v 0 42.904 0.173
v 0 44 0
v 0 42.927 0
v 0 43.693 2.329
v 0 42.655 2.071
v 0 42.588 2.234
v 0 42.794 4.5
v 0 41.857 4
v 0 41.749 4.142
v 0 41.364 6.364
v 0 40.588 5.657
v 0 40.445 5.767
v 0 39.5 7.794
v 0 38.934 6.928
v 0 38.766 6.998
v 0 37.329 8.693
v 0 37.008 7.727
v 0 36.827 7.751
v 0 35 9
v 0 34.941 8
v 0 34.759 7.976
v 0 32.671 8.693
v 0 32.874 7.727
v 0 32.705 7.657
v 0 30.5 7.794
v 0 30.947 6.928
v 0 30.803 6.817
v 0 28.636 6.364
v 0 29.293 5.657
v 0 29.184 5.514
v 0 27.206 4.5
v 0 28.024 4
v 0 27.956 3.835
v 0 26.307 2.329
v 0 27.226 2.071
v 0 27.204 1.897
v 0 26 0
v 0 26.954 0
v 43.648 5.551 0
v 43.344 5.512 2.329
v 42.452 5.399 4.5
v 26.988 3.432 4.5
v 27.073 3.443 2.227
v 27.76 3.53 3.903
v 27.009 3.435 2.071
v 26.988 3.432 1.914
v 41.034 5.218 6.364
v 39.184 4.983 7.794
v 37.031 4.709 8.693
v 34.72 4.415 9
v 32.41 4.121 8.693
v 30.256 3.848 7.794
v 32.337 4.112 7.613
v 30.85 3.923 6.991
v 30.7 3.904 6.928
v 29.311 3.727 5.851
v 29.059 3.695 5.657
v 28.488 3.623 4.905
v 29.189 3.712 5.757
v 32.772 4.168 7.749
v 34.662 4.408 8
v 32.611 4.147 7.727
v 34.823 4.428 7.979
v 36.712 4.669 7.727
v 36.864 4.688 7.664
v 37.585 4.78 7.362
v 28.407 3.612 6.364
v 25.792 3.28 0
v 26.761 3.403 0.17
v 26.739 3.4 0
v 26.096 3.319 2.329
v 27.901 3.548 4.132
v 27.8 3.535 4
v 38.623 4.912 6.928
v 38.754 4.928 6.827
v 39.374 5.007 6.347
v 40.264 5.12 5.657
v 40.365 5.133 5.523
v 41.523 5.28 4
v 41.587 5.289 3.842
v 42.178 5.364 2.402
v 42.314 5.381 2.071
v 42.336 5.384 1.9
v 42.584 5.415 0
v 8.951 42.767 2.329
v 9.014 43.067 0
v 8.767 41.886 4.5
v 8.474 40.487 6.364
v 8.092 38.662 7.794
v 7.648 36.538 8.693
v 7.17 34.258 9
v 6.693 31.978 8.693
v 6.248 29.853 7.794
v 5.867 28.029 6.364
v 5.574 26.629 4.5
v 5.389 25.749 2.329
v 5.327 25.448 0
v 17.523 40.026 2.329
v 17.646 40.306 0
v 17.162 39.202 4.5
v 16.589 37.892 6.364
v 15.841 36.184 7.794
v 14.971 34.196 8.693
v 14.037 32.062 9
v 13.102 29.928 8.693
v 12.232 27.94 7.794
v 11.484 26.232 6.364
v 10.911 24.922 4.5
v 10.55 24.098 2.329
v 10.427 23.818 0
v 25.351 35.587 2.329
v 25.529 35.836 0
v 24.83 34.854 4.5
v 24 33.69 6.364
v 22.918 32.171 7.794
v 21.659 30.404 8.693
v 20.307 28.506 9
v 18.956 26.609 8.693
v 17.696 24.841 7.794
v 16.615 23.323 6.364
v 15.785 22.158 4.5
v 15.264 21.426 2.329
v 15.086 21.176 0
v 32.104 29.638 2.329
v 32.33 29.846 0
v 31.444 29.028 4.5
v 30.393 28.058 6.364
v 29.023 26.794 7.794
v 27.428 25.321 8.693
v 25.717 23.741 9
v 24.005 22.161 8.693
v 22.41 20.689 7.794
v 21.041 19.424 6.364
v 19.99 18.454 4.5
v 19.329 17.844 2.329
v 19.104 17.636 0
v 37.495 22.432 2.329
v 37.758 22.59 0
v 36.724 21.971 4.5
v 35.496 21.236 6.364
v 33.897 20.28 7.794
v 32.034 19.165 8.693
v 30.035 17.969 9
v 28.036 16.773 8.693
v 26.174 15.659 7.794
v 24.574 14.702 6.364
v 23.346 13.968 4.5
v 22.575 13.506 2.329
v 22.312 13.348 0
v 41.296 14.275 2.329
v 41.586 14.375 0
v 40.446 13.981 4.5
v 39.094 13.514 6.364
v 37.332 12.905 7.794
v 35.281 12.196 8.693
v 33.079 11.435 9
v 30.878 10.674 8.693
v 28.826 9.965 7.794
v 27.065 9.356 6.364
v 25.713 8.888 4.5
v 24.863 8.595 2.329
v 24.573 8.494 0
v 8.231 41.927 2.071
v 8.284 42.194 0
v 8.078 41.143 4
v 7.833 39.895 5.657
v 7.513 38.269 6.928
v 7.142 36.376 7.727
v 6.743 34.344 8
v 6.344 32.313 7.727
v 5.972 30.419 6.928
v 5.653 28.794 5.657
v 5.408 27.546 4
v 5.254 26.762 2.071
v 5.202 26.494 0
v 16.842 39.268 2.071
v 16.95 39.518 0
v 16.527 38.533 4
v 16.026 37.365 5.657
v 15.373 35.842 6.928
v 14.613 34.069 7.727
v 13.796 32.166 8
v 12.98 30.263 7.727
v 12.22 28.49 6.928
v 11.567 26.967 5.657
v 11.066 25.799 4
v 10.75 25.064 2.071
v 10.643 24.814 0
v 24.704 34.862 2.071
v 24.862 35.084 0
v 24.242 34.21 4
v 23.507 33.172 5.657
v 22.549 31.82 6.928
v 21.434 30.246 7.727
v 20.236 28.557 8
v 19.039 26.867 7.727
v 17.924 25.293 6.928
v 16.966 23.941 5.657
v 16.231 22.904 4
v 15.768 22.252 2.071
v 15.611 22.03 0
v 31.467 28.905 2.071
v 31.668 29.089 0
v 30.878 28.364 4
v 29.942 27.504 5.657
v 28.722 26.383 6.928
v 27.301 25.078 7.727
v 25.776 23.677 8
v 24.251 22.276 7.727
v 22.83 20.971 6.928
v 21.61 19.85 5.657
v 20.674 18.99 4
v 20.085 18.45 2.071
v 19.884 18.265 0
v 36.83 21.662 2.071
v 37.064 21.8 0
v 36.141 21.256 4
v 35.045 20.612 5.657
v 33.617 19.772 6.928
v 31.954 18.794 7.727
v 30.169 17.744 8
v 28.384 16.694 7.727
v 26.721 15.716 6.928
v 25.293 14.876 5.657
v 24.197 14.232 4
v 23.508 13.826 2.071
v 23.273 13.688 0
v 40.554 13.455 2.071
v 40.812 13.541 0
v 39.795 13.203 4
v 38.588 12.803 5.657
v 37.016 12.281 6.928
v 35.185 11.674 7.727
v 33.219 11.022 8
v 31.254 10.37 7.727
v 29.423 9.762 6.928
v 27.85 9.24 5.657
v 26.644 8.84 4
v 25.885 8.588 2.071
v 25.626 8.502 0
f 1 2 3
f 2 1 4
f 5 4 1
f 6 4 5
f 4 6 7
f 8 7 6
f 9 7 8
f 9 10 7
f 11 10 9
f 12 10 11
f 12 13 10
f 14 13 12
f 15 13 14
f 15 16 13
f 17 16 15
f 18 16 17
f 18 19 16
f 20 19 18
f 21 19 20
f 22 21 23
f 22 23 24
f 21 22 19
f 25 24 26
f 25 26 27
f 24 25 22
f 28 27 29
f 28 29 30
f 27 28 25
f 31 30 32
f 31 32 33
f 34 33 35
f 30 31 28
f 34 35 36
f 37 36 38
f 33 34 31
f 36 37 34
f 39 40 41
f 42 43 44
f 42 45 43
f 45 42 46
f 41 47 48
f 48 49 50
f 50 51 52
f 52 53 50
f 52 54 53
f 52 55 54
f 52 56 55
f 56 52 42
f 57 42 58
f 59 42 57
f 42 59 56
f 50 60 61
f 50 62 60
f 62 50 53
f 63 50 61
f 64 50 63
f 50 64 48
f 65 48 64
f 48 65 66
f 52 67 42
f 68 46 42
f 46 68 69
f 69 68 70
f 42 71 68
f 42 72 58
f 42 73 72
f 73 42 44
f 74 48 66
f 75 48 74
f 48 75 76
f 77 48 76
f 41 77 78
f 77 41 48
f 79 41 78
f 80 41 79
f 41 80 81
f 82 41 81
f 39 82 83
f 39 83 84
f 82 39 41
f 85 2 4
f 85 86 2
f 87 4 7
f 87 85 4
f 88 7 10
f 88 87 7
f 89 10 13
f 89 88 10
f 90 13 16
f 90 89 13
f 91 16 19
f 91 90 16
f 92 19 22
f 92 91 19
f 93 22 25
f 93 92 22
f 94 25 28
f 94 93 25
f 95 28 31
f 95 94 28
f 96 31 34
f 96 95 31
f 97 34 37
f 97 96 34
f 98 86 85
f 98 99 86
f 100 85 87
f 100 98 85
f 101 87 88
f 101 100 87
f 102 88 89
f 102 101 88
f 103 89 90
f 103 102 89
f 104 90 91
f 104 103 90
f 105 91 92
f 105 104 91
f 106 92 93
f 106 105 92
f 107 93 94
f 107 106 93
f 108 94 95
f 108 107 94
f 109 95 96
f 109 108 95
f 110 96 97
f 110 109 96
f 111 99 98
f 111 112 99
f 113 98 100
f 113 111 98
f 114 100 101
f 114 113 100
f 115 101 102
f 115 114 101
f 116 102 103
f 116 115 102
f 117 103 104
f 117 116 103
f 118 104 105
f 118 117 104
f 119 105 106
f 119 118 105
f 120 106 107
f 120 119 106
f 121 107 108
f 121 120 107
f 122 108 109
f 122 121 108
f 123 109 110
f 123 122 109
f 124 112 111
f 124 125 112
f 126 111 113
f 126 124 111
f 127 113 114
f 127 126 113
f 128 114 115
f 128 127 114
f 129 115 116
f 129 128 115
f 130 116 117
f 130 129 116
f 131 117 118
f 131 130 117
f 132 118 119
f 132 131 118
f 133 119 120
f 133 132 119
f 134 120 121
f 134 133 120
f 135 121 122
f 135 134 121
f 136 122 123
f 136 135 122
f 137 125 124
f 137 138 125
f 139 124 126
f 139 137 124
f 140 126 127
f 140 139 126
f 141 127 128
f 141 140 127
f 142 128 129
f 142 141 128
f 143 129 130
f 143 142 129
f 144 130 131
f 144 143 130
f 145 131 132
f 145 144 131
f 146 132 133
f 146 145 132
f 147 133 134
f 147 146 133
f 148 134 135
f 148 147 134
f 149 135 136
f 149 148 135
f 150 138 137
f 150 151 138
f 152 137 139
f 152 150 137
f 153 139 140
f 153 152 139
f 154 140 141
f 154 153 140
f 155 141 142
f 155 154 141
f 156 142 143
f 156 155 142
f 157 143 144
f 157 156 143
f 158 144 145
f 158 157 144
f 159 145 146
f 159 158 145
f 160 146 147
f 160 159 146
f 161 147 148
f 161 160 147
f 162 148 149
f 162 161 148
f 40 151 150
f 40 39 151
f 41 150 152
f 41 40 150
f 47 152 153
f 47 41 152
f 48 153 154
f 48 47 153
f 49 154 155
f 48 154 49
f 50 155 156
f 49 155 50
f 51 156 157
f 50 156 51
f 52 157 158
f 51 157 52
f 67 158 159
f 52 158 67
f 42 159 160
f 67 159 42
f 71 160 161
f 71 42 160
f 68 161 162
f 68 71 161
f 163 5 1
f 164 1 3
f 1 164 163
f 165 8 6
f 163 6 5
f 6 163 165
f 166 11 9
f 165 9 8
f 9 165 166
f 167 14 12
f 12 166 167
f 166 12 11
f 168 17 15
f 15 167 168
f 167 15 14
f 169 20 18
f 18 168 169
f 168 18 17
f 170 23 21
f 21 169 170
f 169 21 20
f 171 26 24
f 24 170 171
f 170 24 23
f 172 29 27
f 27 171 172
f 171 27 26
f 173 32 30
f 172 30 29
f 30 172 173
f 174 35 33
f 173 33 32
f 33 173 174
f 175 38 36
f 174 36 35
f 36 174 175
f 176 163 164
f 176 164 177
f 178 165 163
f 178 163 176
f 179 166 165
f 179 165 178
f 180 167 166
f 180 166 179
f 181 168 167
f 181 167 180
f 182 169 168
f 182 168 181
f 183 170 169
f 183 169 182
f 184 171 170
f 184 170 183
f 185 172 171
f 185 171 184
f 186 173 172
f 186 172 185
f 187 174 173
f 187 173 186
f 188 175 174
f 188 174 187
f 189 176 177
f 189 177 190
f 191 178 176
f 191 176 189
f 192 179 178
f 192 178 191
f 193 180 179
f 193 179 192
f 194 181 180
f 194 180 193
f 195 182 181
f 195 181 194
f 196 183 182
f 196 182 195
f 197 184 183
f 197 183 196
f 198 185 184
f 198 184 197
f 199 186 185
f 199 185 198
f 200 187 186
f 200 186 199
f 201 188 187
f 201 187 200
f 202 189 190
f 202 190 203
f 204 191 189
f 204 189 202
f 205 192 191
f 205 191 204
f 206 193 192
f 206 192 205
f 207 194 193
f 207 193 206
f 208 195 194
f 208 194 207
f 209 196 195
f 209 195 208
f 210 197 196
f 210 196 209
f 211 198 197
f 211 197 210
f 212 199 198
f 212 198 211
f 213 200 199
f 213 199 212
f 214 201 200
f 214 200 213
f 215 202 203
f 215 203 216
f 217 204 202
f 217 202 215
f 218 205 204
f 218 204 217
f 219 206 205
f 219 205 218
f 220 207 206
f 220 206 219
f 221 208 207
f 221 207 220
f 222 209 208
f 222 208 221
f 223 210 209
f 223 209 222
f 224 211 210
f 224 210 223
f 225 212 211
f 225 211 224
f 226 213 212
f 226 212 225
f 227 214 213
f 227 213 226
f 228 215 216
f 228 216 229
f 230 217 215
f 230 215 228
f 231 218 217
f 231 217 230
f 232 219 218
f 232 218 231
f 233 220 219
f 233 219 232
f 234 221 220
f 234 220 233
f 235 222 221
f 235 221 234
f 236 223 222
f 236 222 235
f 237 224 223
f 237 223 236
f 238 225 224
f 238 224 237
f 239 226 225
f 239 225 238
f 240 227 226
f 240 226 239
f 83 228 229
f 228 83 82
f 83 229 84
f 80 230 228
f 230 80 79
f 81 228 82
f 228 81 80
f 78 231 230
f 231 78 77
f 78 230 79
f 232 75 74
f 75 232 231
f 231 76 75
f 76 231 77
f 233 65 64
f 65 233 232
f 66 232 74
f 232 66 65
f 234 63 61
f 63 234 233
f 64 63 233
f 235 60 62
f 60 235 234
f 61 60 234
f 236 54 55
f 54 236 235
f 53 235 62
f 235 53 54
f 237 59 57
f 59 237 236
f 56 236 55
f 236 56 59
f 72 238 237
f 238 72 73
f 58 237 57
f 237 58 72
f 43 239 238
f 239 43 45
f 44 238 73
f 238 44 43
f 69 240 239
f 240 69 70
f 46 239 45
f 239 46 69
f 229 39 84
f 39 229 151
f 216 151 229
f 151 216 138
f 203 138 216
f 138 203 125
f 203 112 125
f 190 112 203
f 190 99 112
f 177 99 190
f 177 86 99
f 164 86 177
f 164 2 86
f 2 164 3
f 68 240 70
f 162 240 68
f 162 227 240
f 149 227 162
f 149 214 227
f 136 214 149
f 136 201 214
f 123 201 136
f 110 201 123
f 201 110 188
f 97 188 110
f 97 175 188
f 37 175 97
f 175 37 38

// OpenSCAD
// file: ../build_environments.scad
// build_environments.scad: modules to build level sections
//

module pool(diameter=10.0, wall_height=2.0, step_width=3.0, connections=[])
{
    difference() {
        union() {
        difference() {
            cylinder(h=0.5,r1=diameter+step_width,r2=diameter+step_width,$fn=48);
            translate([0,0,-0.1])
                cylinder(h=0.7,r1=diameter,r2=diameter,$fn=48);
        }
        difference() {
            cylinder(h=wall_height,r1=diameter+step_width+1.0,r2=diameter+step_width+1.0,$fn=48);
            translate([0,0,-0.1])
                cylinder(h=wall_height+0.2,r1=diameter+step_width,r2=diameter+step_width,$fn=48);
        }
        }
    
        for (c = connections)
        {
            rotate([0,90,0]) {
                angle = atan2(c[1],c[0]);
                rotate([-angle,0,0]) {
                    cylinder(h=diameter+5.0,r1=c[2],r2=c[2],$fn=48);
                }
            }
        }
    }
}

module straight(length=10.0, width=2.0, dy1=0.0, dy2=0.0, dz=0.0)
{
    dims = [0, 0, 0, 0, 0, (dz/length)];
    matrix = [
        [ 1, dims[0], dims[1], 0 ],
        [ dims[2], 1, dims[4], 0 ],
        [ dims[5], dims[3], 1, 0 ],
        [ 0, 0, 0, 1 ]
    ];
    multmatrix(matrix)
    difference() {
        translate([dy1,0,0])
        union() {
            rotate([0,90,0]) {
                difference() {
                    cylinder(h=(length-dy1-dy2),r1=width+1.0,r2=width+1.0,$fn=24);
                    translate([0,0,-0.1])
                        cylinder(h=(length-dy1-dy2+0.2),r1=width,r2=width,$fn=24);
                }
                difference() {
                    cylinder(h=1.0,r1=width+2.0,r2=width+2.0,$fn=24);
                    translate([0,0,-0.1])
                        cylinder(h=1.2,r1=width,r2=width,$fn=24);
                }
                translate([0,0,(length-dy1-dy2)-1.0]) {
                    difference() {
                        cylinder(h=1.0,r1=width+2.0,r2=width+2.0,$fn=24);
                        translate([0,0,-0.1])
                            cylinder(h=1.2,r1=width,r2=width,$fn=24);
                    }
                }
            }
        }
        translate([0,0,-(2*width+4.0)/2])
            cube([3*length,3*length,2*width+4.0],center=true);
    }
}

module curve(p0=[0,0], center=[0,0], dir=1, angle=0.0, width=2.0)
{
    radius = sqrt((p0[0]-center[0])*(p0[0]-center[0]) + (p0[1]-center[1])*(p0[1]-center[1]));
    if (dir == 0) {
        difference() {
            rotate([0,0,-90])
            difference() {
                rotate_extrude(angle = angle, convexity = 10, $fn=32)
                    translate([radius, 0, 0])
                        circle(r = width+1.0,$fn=24);
                rotate([0,0,-1.0])
                    rotate_extrude(angle = angle+2.0, convexity = 10, $fn=32)
                        translate([radius, 0, 0])
                            circle(r = width,$fn=24);
            }
            translate([0,0,-(2*width+4.0)/2])
                cube([5*radius,5*radius,2*width+4.0],center=true);
        }
    }
    else {
        difference() {
            rotate([0,0,90])
            difference() {
                rotate_extrude(angle = -angle, convexity = 10, $fn=32)
                    translate([radius, 0, 0])
                        circle(r = width+1.0,$fn=24);
                rotate([0,0,1.0])
                    rotate_extrude(angle = -angle-2.0, convexity = 10, $fn=32)
                        translate([radius, 0, 0])
                            circle(r = width,$fn=24);
            }
            translate([0,0,-(2*width+4.0)/2])
                cube([5*radius,5*radius,2*width+4.0],center=true);
        }
    }

}

// test pool
//pool(diameter=12.0000, wall_height=3.0000, step_width=3.0000, connections=[[0.0000,-26.0000,2.0000], [23.6074,0.0000,2.0000]]);

// test straight, slope
//straight(length=26.0000, width=2.0000, dy1=11.8322, dy2=6.7082, dz=0.0000);
//straight(length=29.1549, width=12.0000, dy1=0.0000, dy2=0.0000, dz=-15.0000);

// test curve
//curve(p0=[23.6074, 0.0000], center=[23.6074, 5.0000], dir=0, angle=60.1011, width=2.0000);
//curve(p0=[33.6426, 12.4219], center=[37.9771, 9.9295], dir=1, angle=120.4627, width=2.0000);
// main file
use <../build_environments.scad>;
curve(p0=[126.8478, 42.4901], center=[93.0863, 51.7184], dir=1, angle=82.7528, width=8.0000);
